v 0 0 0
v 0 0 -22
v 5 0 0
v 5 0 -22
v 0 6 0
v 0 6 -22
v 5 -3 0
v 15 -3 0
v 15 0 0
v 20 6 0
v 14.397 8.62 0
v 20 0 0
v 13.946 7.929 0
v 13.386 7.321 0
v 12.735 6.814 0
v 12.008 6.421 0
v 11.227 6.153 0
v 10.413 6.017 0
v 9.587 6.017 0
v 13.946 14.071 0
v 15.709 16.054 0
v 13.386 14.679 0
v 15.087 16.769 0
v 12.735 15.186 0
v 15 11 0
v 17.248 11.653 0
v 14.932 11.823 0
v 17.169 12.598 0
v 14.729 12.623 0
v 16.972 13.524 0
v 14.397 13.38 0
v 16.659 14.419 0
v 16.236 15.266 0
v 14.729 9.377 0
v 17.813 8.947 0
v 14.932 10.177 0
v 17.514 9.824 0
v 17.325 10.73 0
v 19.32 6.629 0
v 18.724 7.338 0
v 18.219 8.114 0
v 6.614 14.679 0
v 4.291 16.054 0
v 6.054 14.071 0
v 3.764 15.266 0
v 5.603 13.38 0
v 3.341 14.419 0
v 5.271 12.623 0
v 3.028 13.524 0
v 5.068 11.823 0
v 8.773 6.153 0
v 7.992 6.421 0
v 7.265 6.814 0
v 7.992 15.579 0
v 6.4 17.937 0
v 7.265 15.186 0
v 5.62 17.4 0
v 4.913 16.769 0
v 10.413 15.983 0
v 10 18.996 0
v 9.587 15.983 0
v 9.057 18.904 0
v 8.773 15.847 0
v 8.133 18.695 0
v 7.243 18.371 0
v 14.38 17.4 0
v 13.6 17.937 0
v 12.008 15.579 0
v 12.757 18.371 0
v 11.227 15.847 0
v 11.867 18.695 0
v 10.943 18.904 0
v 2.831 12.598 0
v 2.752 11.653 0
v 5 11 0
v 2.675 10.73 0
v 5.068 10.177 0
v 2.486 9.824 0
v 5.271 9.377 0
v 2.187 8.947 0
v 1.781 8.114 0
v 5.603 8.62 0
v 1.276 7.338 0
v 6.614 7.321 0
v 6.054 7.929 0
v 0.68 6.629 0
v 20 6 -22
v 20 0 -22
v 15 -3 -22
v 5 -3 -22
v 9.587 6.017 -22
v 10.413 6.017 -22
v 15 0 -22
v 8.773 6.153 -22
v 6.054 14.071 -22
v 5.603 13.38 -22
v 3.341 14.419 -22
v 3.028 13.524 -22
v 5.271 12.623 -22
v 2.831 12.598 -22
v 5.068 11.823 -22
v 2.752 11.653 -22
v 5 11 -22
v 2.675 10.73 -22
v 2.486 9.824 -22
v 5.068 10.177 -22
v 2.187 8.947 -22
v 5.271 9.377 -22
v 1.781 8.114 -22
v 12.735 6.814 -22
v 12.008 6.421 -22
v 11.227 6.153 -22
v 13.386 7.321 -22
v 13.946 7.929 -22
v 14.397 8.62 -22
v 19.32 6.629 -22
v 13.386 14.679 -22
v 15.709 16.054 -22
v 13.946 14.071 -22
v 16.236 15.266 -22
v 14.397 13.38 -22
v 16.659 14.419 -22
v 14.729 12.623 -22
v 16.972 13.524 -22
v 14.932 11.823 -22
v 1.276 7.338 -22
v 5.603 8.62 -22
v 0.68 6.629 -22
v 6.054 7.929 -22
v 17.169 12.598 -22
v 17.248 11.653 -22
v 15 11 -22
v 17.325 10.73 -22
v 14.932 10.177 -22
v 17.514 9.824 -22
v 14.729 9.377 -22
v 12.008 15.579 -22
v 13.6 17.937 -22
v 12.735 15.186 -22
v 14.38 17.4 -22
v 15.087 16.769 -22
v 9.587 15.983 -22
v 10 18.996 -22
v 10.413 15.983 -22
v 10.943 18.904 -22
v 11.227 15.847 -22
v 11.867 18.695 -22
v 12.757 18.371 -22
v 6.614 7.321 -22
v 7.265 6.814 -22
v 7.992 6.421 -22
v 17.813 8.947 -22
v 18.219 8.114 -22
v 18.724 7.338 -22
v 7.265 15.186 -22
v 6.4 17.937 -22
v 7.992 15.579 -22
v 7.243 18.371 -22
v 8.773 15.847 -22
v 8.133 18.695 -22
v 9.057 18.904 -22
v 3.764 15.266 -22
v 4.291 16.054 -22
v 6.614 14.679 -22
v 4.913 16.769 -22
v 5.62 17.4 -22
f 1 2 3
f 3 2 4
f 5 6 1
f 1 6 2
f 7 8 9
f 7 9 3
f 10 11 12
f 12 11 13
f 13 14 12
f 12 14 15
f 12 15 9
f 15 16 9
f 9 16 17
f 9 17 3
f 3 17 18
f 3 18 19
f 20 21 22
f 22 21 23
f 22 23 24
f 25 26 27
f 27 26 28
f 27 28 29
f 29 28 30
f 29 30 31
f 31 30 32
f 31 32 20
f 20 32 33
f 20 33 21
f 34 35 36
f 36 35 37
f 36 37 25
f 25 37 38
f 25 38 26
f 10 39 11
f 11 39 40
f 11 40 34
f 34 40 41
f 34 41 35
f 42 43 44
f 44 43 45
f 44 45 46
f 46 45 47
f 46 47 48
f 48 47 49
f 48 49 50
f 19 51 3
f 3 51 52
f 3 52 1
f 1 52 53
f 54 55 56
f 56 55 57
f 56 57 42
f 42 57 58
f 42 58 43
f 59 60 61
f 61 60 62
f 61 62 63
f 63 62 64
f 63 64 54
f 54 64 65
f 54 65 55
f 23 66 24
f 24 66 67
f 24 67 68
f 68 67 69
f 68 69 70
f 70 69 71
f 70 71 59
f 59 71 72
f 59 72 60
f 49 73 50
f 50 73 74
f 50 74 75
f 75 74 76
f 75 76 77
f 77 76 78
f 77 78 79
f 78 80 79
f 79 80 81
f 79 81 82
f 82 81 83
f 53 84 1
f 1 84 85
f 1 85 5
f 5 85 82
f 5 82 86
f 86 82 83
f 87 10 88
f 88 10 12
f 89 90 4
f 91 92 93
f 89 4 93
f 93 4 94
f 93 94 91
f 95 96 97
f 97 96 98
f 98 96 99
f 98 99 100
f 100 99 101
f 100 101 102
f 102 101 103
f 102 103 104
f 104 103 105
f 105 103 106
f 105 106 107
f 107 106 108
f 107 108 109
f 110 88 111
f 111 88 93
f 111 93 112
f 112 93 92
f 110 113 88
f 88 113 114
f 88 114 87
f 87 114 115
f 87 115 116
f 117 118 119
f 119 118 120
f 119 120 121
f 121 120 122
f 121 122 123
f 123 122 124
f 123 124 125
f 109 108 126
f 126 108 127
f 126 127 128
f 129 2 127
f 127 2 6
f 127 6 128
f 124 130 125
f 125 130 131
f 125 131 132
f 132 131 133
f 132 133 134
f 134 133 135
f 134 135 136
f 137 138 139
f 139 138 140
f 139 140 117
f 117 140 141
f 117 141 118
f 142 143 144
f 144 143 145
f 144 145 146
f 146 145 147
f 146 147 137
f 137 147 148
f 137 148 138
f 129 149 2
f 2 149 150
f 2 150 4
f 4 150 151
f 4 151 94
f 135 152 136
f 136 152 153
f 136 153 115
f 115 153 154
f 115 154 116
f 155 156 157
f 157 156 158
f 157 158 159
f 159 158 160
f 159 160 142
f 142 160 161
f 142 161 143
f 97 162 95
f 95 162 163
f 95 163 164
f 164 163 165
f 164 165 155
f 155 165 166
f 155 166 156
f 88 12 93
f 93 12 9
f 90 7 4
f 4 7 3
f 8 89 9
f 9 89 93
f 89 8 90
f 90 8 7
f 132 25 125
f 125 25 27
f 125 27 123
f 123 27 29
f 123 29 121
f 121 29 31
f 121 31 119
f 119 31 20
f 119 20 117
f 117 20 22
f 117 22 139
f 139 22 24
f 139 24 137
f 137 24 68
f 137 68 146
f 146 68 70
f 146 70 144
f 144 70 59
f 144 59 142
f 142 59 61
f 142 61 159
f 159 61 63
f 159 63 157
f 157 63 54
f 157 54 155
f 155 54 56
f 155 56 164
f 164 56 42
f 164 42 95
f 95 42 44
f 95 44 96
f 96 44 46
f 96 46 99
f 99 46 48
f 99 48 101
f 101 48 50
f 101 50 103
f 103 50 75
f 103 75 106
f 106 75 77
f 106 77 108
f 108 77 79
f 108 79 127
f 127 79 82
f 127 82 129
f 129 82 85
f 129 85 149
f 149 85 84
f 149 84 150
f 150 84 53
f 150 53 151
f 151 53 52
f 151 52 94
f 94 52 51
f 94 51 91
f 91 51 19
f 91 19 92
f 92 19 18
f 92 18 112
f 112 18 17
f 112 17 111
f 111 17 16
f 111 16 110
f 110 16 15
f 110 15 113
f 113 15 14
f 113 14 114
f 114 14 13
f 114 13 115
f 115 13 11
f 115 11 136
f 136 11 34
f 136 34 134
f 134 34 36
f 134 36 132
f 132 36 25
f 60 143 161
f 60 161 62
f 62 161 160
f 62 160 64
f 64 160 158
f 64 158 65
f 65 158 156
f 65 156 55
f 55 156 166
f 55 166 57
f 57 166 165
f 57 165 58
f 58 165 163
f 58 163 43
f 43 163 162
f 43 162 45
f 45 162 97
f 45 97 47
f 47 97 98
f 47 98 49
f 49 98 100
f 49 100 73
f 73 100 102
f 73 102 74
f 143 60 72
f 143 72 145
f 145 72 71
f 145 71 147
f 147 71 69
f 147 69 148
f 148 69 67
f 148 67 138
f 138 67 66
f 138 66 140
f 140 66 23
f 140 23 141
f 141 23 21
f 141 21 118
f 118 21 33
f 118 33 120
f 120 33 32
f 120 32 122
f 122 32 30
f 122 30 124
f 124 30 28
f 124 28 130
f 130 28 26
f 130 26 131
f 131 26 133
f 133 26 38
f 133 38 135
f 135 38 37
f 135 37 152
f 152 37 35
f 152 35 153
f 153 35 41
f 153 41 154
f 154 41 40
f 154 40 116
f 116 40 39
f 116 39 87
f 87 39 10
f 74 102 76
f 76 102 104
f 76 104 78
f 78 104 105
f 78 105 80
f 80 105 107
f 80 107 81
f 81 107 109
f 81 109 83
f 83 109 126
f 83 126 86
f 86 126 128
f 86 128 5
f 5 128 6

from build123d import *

# Parameters (mm, degrees)
SKETCH6_W           = 20
SKETCH6_H           = 22
BOSS_EXTRUDE5_DEPTH = 6
SKETCH7_W           = 10
SKETCH7_H           = 22
BOSS_EXTRUDE6_DEPTH = 3
SKETCH8_W           = 14.5
SKETCH8_H           = 22
BOSS_EXTRUDE7_DEPTH = 13
SKETCH9_R           = 5
CUT_EXTRUDE1_DEPTH  = 36.284557529
FILLET1_R           = 7.5
FILLET2_R           = 7.5


with BuildPart() as part:
    # Sketch6 → Boss-Extrude5 (new body)
    with BuildSketch(Plane(origin=(0, 0, 0), x_dir=(1, 0, 0), z_dir=(0, 1, 0))):
        with Locations((10, 11)):
            Rectangle(SKETCH6_W, SKETCH6_H)
    extrude(amount=BOSS_EXTRUDE5_DEPTH)

    # Sketch7 → Boss-Extrude6 (add)
    with BuildSketch(Plane.XZ):
        with Locations((10, -11)):
            Rectangle(SKETCH7_W, SKETCH7_H)
    extrude(amount=BOSS_EXTRUDE6_DEPTH)

    # Sketch8 → Boss-Extrude7 (add)
    with BuildSketch(Plane(origin=(0, 6, 0), x_dir=(1, 0, 0), z_dir=(0, 1, 0))):
        with Locations((10, 11)):
            Rectangle(SKETCH8_W, SKETCH8_H)
    extrude(amount=BOSS_EXTRUDE7_DEPTH)

    # Sketch9 → Cut-Extrude1 (cut, through all)
    with BuildSketch(Plane.XY):
        with Locations((10, 11)):
            Circle(SKETCH9_R)
    extrude(amount=-CUT_EXTRUDE1_DEPTH, mode=Mode.SUBTRACT)

    # Fillet1
    # the kernel refuses this fillet: 7.5 mm, written as the material it takes off along each edge
    with BuildSketch(Plane(origin=(17.25, 19, -40.75), x_dir=(-1, 0, 0), z_dir=(0, 0, 1))) as fillet1_piece_1:
        with BuildLine():
            CenterArc((FILLET1_R, FILLET1_R), FILLET1_R, 180, 90)
            Line((0, FILLET1_R), (0, 0))
            Line((0, 0), (FILLET1_R, 0))
        make_face()
    extrude(amount=59.5, mode=Mode.SUBTRACT)
    with BuildSketch(Plane(origin=(2.75, 19, 18.75), x_dir=(0, -1, 0), z_dir=(0, 0, -1))) as fillet1_piece_2:
        with BuildLine():
            CenterArc((FILLET1_R, -FILLET1_R), FILLET1_R, 90, 90)
            Line((0, -FILLET1_R), (0, 0))
            Line((0, 0), (FILLET1_R, 0))
        make_face()
    extrude(amount=59.5, mode=Mode.SUBTRACT)

    # Fillet2
    # the kernel refuses this fillet: 7.5 mm, written as the material it adds along each edge
    with BuildSketch(Plane(origin=(17.25, 6, -22), x_dir=(1, 0, 0), z_dir=(0, 0, 1))) as fillet2_piece_1:
        with BuildLine():
            CenterArc((7.496865043, 5.806657581), FILLET2_R, 181.171427285, 49.563032728)
            Line((-0.001567478, 5.65332879), (-0.75141073, 5.637995911))
            ThreePointArc((-0.75141073, 5.637995911), (-0.75, 5.5), (-0.75, 0))
            Line((-0.75, 0), (0, -0.75))
            ThreePointArc((0, -0.75), (1.375, -0.75), (2.275313496, -0.580665758))
            Line((2.275313496, -0.580665758), (2.75, 0))
        make_face()
    extrude(amount=22)
    with BuildSketch(Plane(origin=(2.75, 6, 0), x_dir=(0.00027726642617420565, 0.9999999615616638, 0), z_dir=(0, 0, -1))) as fillet2_piece_2:
        with BuildLine():
            CenterArc((5.804578729, -7.498474746), FILLET2_R, 91.155541089, 49.563032728)
            Line((-0.000762483, -2.749999894), (-0.581296604, -2.275152409))
            ThreePointArc((-0.581296604, -2.275152409), (-0.750381213, -1.374791997), (-0.749999971, 0.00020795))
            Line((-0.749999971, 0.00020795), (0.00020795, 0.749999971))
            ThreePointArc((0.00020795, 0.749999971), (5.500207738, 0.748475006), (5.638204036, 0.749847475))
            Line((5.638204036, 0.749847475), (5.653329008, 0))
        make_face()
    extrude(amount=22)


solid = part.part
